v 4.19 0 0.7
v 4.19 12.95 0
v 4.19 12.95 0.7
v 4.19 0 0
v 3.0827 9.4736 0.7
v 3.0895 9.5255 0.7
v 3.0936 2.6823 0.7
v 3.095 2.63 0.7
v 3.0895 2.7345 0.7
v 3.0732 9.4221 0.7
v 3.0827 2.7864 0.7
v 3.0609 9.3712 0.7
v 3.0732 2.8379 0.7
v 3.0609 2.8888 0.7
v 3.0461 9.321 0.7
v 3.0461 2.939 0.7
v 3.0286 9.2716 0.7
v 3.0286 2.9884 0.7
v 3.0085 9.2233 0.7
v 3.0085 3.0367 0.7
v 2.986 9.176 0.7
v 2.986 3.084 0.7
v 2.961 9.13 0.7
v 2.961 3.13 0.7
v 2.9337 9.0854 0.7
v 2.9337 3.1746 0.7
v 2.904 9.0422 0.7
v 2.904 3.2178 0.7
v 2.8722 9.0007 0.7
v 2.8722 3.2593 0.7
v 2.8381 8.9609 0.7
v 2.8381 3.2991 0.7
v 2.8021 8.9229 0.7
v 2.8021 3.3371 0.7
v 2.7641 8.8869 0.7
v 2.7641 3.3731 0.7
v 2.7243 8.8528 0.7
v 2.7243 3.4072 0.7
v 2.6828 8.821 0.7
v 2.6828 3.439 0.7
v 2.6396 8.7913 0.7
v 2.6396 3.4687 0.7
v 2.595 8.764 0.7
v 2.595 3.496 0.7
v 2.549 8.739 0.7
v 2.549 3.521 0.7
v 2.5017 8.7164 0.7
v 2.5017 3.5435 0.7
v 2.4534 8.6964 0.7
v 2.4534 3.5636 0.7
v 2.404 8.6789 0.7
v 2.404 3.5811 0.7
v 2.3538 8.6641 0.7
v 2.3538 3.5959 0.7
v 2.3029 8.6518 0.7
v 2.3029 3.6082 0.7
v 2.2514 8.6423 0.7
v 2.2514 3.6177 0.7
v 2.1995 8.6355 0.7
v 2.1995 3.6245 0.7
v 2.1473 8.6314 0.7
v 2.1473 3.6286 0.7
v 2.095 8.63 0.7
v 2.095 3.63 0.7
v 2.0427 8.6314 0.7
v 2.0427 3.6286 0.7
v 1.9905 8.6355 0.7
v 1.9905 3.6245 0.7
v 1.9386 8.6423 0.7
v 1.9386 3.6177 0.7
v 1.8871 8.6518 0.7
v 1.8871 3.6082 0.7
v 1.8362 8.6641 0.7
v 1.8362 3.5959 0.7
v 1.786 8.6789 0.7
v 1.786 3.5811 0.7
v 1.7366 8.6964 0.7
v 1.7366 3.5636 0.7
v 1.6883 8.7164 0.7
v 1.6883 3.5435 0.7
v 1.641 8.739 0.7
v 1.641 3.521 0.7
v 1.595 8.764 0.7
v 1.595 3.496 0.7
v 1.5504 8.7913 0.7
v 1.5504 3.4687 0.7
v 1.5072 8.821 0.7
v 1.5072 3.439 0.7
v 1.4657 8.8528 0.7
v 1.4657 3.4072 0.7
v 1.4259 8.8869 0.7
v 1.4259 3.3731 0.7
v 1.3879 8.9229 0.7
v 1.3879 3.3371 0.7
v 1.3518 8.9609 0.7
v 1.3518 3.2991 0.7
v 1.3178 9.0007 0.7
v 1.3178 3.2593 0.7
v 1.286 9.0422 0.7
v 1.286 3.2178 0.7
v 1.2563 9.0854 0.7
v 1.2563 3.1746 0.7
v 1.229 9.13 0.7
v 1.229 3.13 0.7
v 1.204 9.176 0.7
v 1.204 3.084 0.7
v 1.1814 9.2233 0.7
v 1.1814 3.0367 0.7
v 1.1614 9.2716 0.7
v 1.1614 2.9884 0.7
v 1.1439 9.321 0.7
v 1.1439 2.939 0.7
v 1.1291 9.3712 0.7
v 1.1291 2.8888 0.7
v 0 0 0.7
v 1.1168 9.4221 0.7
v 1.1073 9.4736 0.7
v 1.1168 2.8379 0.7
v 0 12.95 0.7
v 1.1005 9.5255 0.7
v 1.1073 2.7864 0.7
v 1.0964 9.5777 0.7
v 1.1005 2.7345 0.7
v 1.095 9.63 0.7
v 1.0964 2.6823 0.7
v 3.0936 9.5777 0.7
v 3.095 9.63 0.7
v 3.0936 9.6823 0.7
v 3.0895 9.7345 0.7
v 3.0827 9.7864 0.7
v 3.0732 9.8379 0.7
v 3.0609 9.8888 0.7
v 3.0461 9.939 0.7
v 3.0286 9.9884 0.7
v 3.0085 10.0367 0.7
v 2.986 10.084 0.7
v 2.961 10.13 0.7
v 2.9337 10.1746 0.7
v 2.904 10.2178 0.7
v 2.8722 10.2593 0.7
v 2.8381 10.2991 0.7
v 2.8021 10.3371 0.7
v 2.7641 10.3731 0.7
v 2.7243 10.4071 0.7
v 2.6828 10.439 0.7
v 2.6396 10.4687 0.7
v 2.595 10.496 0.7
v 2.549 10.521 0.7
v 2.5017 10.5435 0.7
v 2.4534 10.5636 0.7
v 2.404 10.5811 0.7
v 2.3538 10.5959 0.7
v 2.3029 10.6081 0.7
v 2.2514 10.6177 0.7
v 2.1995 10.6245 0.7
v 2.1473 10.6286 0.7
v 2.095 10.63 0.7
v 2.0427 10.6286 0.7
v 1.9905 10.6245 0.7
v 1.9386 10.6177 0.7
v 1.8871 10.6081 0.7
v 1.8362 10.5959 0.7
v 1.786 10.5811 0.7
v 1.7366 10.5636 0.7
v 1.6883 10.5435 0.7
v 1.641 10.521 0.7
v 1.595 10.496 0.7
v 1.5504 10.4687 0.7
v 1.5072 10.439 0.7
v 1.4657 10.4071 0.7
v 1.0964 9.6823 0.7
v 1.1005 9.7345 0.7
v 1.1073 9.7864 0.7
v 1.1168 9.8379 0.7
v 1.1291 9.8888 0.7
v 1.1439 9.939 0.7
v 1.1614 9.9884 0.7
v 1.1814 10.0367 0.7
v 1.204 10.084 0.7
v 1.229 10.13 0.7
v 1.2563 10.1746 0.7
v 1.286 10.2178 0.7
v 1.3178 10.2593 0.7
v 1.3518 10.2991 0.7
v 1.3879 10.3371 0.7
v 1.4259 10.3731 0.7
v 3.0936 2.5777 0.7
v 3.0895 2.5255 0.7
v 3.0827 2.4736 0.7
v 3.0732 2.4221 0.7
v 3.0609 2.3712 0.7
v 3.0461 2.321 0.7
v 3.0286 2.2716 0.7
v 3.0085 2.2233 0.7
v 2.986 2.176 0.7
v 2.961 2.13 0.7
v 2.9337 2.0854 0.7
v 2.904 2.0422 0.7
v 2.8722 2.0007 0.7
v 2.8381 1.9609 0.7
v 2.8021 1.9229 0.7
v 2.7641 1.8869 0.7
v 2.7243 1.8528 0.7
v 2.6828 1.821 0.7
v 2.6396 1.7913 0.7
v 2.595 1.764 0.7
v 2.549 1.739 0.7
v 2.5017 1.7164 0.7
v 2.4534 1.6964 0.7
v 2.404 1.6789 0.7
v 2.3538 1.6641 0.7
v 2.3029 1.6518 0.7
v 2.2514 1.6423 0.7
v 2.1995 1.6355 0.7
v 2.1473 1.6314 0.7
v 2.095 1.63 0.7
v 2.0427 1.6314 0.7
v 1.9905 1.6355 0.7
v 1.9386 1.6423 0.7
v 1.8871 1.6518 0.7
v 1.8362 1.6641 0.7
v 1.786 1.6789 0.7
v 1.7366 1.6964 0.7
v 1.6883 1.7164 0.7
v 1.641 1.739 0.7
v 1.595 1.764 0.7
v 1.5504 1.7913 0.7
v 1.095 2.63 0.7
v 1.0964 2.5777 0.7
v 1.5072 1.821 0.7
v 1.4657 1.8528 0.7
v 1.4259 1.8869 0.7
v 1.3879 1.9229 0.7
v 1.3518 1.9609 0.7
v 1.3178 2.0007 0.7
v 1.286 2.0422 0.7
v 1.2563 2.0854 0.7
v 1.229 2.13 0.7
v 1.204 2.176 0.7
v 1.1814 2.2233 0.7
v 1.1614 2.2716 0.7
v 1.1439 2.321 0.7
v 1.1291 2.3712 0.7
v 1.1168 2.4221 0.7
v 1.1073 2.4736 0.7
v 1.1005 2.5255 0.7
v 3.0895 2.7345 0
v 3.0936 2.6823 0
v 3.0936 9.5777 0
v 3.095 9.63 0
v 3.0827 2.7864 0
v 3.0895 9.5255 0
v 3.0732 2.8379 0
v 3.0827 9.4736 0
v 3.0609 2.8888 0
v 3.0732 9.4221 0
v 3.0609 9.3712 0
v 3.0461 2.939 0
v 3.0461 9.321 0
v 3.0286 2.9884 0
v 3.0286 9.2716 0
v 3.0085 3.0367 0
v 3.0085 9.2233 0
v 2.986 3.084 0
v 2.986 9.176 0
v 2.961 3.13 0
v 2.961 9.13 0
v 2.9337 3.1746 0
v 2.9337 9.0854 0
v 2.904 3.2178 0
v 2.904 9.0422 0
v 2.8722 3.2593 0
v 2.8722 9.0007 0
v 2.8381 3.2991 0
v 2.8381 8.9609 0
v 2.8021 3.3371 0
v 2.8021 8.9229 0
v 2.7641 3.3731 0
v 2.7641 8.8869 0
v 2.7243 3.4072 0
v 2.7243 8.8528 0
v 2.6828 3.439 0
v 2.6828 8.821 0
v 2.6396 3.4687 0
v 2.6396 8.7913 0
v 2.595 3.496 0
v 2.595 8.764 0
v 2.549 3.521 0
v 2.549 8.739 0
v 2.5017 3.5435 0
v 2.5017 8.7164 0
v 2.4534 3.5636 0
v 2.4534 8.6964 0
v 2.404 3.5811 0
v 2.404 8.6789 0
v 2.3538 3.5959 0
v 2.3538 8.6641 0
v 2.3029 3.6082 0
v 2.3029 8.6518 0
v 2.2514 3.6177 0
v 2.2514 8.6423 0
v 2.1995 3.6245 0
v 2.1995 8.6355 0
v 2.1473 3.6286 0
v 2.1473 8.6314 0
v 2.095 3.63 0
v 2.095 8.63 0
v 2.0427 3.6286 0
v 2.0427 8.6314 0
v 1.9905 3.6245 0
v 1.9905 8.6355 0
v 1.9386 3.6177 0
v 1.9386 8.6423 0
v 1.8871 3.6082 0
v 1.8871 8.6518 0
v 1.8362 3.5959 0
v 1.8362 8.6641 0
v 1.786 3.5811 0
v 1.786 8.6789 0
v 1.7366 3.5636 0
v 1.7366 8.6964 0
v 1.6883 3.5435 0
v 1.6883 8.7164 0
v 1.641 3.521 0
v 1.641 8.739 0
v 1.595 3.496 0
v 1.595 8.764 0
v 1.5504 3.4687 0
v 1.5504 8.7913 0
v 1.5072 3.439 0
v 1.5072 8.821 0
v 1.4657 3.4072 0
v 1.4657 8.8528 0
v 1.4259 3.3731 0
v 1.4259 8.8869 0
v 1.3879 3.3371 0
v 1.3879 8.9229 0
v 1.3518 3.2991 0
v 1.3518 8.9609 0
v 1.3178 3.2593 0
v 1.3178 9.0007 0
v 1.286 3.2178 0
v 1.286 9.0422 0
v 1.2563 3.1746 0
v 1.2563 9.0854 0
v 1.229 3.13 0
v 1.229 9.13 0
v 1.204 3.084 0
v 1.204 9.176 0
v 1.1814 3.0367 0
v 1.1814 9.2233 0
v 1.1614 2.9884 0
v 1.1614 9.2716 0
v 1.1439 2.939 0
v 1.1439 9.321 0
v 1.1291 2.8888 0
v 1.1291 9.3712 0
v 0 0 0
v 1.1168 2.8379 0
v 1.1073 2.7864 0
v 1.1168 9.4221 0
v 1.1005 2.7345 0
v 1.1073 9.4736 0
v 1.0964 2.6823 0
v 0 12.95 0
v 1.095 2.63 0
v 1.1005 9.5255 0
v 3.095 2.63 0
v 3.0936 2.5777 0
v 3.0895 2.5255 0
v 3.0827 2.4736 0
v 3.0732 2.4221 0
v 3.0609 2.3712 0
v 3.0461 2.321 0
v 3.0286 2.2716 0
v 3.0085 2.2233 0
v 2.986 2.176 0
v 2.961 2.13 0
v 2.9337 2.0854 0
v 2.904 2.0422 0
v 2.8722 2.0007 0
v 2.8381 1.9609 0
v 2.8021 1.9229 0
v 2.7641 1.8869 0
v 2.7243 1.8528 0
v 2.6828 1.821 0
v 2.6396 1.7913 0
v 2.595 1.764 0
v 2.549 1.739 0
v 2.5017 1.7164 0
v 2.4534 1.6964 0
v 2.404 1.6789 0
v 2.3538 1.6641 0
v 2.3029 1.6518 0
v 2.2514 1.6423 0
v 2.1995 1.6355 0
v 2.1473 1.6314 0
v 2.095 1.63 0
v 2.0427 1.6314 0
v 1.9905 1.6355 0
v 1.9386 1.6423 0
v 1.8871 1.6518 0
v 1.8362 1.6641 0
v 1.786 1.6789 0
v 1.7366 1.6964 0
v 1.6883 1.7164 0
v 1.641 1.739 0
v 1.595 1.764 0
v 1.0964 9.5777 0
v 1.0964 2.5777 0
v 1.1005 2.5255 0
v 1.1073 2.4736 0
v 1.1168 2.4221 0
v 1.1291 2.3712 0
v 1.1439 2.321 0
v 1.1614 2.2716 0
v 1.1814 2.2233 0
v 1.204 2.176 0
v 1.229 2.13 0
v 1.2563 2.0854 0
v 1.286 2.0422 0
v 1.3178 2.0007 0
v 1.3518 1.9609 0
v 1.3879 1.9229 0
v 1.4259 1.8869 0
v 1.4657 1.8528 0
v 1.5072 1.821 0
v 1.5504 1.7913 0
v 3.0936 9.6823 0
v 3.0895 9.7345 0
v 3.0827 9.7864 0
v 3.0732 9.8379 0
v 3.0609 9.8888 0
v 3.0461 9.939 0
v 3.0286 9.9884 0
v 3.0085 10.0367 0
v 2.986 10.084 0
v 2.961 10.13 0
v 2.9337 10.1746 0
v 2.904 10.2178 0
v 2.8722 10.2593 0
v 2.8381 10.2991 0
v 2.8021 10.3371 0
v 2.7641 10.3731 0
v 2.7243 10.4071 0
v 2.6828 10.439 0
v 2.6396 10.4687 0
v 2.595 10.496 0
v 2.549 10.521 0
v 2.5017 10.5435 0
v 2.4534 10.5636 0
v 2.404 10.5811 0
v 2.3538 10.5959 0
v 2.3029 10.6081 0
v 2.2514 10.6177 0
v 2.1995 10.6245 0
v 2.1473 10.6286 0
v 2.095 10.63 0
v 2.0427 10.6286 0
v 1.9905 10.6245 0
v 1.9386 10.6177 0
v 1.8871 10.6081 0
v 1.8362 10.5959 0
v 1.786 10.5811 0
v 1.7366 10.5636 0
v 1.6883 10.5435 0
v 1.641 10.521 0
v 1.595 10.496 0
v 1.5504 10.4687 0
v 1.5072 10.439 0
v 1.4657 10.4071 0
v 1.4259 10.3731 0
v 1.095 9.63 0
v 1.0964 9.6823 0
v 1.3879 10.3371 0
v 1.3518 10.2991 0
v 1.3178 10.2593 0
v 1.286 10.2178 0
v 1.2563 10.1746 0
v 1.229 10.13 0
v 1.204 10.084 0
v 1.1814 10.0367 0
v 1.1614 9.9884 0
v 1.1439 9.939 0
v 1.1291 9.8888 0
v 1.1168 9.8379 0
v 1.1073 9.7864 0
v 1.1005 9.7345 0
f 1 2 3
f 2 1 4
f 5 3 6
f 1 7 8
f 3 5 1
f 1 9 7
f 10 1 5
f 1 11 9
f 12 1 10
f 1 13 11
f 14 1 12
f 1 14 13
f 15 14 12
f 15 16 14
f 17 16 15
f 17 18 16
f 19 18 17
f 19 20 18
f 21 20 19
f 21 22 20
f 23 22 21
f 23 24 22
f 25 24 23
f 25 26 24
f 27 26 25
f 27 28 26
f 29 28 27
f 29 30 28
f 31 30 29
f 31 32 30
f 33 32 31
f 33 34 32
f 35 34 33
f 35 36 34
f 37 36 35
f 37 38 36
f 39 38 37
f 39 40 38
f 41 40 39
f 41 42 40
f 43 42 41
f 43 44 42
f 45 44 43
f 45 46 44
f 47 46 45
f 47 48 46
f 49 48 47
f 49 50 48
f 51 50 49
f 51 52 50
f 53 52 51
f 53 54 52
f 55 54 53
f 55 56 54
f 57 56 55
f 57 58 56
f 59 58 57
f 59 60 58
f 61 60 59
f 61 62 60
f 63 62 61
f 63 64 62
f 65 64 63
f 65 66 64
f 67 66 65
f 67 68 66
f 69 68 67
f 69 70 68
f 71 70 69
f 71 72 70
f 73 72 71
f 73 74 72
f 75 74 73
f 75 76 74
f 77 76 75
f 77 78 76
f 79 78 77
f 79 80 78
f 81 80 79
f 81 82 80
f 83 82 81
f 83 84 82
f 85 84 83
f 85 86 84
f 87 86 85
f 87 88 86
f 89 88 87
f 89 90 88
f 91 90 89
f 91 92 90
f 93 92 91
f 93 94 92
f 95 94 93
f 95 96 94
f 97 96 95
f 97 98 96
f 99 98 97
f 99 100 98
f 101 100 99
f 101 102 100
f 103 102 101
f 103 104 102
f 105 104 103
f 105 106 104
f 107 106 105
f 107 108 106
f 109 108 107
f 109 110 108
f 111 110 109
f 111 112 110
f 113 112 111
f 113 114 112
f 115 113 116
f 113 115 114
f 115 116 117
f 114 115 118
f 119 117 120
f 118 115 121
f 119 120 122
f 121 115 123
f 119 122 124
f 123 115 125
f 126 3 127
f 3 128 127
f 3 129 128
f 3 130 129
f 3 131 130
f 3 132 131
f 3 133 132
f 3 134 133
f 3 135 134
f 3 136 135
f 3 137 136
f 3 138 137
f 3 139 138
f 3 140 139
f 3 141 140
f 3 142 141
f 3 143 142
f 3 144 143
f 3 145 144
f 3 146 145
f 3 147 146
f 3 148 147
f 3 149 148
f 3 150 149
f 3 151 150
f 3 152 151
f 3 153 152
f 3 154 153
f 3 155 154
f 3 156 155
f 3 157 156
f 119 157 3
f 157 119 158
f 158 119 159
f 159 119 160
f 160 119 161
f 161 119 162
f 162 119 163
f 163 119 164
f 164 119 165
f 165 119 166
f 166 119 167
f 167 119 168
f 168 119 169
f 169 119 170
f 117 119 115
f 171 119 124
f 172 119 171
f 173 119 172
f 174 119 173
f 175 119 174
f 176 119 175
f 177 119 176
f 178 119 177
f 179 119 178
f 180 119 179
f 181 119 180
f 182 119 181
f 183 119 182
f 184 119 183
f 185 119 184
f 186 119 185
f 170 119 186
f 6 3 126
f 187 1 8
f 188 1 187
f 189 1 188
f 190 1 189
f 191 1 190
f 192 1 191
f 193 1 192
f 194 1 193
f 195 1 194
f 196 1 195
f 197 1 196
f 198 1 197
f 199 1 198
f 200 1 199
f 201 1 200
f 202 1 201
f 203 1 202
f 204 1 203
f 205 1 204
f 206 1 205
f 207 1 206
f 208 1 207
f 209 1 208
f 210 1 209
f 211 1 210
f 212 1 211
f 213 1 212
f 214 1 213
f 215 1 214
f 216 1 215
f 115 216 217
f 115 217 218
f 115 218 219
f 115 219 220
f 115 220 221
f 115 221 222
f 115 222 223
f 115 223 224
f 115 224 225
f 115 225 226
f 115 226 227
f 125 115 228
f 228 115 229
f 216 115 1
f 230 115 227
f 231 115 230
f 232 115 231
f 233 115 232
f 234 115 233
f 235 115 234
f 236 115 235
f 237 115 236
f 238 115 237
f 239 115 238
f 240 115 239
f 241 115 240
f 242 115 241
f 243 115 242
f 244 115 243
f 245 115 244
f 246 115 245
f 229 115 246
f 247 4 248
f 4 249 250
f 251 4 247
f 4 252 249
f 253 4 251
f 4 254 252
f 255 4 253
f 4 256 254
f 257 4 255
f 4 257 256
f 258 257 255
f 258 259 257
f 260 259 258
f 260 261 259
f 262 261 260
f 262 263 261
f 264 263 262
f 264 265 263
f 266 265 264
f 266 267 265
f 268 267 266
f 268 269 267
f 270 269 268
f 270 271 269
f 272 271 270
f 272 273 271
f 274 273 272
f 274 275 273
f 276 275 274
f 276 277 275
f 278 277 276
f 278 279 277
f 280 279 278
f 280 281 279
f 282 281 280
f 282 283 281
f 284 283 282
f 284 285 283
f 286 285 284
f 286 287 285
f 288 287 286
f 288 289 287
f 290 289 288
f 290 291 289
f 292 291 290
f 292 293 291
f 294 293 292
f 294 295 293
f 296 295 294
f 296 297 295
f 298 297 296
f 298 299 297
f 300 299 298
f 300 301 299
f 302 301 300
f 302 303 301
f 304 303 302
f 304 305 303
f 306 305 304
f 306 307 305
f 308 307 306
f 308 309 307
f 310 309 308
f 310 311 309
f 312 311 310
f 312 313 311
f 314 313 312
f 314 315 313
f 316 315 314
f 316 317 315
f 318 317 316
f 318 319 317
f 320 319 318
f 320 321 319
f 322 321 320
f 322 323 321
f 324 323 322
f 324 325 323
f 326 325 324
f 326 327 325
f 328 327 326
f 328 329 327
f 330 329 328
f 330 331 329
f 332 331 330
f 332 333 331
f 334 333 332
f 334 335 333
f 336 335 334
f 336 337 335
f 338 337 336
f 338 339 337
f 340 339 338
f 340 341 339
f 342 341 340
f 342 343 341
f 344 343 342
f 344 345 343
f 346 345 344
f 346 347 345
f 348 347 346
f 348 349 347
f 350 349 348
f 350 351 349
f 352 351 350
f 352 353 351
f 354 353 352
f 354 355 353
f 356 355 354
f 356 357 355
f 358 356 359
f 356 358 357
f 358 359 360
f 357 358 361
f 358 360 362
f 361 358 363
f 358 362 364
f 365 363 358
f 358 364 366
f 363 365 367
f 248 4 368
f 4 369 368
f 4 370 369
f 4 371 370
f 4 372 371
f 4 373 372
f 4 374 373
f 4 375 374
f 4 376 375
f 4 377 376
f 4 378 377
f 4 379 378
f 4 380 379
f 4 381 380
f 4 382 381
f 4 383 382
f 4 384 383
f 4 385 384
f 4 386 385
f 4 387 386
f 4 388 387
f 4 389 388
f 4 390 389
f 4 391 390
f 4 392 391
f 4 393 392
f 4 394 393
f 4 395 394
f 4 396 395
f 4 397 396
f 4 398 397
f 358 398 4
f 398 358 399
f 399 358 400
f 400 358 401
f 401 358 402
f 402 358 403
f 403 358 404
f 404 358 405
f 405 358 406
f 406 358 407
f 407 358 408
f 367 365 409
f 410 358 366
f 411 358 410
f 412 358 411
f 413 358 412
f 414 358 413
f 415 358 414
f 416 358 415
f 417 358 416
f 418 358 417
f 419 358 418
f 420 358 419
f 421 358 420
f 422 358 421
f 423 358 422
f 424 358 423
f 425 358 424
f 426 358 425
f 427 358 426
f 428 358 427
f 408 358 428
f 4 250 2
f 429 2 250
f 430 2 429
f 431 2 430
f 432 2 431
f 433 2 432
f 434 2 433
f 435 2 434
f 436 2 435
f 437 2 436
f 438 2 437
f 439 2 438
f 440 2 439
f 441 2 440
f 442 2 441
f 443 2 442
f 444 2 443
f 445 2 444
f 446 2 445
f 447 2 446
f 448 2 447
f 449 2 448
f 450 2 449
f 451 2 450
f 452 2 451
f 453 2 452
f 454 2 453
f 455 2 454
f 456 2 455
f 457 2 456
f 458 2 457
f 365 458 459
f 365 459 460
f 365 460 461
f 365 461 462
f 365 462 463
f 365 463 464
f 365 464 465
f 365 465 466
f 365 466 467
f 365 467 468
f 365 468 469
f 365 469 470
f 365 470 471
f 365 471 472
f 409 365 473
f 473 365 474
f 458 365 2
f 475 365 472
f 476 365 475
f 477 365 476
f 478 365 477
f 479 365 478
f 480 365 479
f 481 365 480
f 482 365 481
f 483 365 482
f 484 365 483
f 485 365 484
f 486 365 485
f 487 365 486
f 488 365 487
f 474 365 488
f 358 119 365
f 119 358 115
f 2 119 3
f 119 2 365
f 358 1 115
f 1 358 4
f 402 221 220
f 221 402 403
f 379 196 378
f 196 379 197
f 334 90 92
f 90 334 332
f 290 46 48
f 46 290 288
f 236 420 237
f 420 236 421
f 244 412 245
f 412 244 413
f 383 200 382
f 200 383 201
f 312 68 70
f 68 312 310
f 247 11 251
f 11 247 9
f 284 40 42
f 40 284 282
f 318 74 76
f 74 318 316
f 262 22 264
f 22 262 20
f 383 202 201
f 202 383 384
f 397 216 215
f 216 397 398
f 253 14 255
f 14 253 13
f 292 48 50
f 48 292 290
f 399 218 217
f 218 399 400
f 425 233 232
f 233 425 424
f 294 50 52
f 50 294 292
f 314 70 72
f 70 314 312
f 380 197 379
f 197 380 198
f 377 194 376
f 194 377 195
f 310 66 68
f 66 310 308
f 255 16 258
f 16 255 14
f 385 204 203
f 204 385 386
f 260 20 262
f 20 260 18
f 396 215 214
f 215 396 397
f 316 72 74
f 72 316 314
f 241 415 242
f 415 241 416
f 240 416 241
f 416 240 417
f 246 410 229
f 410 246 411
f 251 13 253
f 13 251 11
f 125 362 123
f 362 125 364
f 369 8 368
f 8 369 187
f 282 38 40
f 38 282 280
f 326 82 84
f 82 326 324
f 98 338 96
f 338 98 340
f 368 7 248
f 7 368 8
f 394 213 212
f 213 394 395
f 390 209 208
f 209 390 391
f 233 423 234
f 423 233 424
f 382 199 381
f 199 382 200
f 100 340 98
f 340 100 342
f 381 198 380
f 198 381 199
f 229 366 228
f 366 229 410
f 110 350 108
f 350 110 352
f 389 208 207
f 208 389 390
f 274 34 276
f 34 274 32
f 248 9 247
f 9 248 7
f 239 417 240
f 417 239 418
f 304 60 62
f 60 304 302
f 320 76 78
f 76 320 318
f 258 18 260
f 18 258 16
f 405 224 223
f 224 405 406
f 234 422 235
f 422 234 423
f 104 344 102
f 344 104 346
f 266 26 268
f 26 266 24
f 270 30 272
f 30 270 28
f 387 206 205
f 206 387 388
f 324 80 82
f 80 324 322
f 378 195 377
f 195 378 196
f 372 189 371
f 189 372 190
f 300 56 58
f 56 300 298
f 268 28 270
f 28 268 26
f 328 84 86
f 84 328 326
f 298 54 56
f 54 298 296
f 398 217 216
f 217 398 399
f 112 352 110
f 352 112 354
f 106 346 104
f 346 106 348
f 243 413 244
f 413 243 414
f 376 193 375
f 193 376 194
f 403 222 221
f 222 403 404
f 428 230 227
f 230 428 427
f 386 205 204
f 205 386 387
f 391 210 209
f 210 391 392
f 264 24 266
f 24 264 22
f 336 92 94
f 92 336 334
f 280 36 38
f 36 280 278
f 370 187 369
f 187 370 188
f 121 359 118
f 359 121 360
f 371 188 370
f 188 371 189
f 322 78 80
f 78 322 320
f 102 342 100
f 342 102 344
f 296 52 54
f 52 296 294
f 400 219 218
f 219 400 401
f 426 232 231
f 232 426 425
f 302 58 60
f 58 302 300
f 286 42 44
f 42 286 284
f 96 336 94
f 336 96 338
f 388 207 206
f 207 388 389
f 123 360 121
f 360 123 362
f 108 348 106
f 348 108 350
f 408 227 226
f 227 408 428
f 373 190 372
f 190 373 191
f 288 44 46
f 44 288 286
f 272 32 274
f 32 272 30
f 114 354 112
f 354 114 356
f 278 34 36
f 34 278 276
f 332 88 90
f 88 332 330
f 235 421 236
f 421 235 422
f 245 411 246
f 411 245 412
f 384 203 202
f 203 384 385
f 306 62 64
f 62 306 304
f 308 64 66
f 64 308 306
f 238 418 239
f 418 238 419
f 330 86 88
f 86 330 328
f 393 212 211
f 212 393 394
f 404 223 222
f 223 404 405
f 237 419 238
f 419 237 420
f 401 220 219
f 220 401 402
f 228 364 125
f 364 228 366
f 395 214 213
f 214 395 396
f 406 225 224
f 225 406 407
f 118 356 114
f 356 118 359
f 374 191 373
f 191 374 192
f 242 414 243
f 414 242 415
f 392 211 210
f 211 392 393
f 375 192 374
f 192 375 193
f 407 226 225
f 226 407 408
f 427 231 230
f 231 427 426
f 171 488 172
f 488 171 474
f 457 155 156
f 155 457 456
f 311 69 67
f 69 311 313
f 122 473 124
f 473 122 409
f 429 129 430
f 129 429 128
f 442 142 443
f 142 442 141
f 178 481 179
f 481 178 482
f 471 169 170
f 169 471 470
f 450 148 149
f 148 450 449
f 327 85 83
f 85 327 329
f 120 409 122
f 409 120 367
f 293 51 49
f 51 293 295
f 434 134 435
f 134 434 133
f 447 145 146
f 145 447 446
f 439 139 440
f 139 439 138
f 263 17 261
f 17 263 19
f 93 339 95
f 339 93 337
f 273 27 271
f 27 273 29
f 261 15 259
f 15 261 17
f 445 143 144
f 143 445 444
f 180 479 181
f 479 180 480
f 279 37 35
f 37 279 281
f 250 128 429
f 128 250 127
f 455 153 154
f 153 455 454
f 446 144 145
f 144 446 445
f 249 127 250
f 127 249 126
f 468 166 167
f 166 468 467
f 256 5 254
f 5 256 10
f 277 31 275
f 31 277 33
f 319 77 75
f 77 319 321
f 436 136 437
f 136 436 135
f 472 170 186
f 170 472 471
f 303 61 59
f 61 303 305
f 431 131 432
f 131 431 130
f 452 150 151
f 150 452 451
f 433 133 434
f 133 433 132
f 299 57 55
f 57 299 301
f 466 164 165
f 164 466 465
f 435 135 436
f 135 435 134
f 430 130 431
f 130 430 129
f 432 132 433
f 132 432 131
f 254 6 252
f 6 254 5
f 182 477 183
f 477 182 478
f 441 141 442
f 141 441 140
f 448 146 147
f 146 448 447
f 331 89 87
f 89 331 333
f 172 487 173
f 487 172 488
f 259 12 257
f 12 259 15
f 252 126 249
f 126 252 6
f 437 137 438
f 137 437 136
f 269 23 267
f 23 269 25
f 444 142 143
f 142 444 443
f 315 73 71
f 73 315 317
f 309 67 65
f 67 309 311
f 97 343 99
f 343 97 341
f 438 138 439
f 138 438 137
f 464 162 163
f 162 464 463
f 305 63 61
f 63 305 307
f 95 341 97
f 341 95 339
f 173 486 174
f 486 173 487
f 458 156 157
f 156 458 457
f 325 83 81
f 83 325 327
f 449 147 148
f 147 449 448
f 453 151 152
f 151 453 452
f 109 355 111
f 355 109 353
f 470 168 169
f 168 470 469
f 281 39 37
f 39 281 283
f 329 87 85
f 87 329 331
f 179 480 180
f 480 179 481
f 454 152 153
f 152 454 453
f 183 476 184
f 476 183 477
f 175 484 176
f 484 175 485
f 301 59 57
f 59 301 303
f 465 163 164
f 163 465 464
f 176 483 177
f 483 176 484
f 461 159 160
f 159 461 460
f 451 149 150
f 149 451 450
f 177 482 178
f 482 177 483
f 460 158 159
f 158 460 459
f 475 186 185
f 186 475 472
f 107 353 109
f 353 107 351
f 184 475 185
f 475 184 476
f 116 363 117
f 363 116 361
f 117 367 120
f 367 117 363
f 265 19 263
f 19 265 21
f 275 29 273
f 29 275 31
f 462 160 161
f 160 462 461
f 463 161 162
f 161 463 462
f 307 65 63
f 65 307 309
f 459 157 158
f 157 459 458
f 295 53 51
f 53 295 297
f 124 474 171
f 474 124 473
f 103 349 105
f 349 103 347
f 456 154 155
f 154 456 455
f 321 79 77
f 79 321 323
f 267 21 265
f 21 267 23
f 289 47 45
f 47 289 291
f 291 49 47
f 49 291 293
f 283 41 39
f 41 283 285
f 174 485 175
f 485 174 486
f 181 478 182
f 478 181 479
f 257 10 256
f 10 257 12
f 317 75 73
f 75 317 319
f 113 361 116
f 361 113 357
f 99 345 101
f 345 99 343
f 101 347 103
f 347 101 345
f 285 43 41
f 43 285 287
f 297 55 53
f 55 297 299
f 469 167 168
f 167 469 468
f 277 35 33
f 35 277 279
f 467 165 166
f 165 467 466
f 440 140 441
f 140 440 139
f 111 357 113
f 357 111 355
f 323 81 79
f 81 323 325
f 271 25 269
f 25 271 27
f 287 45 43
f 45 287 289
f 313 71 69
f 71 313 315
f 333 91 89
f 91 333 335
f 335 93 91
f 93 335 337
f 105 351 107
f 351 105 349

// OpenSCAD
//
// Spacer for Infiray Tiny1C breakout board
//

difference()
{
    cube([4.19, 12.95, 0.7]);
    
    translate([(4.19/2), 2.63, -0.1]) {
        cylinder(r=1, h=1, $fn=120);
    }
    
    translate([(4.19/2), 9.63, -0.1]) {
        cylinder(r=1, h=1, $fn=120);
    }
}
